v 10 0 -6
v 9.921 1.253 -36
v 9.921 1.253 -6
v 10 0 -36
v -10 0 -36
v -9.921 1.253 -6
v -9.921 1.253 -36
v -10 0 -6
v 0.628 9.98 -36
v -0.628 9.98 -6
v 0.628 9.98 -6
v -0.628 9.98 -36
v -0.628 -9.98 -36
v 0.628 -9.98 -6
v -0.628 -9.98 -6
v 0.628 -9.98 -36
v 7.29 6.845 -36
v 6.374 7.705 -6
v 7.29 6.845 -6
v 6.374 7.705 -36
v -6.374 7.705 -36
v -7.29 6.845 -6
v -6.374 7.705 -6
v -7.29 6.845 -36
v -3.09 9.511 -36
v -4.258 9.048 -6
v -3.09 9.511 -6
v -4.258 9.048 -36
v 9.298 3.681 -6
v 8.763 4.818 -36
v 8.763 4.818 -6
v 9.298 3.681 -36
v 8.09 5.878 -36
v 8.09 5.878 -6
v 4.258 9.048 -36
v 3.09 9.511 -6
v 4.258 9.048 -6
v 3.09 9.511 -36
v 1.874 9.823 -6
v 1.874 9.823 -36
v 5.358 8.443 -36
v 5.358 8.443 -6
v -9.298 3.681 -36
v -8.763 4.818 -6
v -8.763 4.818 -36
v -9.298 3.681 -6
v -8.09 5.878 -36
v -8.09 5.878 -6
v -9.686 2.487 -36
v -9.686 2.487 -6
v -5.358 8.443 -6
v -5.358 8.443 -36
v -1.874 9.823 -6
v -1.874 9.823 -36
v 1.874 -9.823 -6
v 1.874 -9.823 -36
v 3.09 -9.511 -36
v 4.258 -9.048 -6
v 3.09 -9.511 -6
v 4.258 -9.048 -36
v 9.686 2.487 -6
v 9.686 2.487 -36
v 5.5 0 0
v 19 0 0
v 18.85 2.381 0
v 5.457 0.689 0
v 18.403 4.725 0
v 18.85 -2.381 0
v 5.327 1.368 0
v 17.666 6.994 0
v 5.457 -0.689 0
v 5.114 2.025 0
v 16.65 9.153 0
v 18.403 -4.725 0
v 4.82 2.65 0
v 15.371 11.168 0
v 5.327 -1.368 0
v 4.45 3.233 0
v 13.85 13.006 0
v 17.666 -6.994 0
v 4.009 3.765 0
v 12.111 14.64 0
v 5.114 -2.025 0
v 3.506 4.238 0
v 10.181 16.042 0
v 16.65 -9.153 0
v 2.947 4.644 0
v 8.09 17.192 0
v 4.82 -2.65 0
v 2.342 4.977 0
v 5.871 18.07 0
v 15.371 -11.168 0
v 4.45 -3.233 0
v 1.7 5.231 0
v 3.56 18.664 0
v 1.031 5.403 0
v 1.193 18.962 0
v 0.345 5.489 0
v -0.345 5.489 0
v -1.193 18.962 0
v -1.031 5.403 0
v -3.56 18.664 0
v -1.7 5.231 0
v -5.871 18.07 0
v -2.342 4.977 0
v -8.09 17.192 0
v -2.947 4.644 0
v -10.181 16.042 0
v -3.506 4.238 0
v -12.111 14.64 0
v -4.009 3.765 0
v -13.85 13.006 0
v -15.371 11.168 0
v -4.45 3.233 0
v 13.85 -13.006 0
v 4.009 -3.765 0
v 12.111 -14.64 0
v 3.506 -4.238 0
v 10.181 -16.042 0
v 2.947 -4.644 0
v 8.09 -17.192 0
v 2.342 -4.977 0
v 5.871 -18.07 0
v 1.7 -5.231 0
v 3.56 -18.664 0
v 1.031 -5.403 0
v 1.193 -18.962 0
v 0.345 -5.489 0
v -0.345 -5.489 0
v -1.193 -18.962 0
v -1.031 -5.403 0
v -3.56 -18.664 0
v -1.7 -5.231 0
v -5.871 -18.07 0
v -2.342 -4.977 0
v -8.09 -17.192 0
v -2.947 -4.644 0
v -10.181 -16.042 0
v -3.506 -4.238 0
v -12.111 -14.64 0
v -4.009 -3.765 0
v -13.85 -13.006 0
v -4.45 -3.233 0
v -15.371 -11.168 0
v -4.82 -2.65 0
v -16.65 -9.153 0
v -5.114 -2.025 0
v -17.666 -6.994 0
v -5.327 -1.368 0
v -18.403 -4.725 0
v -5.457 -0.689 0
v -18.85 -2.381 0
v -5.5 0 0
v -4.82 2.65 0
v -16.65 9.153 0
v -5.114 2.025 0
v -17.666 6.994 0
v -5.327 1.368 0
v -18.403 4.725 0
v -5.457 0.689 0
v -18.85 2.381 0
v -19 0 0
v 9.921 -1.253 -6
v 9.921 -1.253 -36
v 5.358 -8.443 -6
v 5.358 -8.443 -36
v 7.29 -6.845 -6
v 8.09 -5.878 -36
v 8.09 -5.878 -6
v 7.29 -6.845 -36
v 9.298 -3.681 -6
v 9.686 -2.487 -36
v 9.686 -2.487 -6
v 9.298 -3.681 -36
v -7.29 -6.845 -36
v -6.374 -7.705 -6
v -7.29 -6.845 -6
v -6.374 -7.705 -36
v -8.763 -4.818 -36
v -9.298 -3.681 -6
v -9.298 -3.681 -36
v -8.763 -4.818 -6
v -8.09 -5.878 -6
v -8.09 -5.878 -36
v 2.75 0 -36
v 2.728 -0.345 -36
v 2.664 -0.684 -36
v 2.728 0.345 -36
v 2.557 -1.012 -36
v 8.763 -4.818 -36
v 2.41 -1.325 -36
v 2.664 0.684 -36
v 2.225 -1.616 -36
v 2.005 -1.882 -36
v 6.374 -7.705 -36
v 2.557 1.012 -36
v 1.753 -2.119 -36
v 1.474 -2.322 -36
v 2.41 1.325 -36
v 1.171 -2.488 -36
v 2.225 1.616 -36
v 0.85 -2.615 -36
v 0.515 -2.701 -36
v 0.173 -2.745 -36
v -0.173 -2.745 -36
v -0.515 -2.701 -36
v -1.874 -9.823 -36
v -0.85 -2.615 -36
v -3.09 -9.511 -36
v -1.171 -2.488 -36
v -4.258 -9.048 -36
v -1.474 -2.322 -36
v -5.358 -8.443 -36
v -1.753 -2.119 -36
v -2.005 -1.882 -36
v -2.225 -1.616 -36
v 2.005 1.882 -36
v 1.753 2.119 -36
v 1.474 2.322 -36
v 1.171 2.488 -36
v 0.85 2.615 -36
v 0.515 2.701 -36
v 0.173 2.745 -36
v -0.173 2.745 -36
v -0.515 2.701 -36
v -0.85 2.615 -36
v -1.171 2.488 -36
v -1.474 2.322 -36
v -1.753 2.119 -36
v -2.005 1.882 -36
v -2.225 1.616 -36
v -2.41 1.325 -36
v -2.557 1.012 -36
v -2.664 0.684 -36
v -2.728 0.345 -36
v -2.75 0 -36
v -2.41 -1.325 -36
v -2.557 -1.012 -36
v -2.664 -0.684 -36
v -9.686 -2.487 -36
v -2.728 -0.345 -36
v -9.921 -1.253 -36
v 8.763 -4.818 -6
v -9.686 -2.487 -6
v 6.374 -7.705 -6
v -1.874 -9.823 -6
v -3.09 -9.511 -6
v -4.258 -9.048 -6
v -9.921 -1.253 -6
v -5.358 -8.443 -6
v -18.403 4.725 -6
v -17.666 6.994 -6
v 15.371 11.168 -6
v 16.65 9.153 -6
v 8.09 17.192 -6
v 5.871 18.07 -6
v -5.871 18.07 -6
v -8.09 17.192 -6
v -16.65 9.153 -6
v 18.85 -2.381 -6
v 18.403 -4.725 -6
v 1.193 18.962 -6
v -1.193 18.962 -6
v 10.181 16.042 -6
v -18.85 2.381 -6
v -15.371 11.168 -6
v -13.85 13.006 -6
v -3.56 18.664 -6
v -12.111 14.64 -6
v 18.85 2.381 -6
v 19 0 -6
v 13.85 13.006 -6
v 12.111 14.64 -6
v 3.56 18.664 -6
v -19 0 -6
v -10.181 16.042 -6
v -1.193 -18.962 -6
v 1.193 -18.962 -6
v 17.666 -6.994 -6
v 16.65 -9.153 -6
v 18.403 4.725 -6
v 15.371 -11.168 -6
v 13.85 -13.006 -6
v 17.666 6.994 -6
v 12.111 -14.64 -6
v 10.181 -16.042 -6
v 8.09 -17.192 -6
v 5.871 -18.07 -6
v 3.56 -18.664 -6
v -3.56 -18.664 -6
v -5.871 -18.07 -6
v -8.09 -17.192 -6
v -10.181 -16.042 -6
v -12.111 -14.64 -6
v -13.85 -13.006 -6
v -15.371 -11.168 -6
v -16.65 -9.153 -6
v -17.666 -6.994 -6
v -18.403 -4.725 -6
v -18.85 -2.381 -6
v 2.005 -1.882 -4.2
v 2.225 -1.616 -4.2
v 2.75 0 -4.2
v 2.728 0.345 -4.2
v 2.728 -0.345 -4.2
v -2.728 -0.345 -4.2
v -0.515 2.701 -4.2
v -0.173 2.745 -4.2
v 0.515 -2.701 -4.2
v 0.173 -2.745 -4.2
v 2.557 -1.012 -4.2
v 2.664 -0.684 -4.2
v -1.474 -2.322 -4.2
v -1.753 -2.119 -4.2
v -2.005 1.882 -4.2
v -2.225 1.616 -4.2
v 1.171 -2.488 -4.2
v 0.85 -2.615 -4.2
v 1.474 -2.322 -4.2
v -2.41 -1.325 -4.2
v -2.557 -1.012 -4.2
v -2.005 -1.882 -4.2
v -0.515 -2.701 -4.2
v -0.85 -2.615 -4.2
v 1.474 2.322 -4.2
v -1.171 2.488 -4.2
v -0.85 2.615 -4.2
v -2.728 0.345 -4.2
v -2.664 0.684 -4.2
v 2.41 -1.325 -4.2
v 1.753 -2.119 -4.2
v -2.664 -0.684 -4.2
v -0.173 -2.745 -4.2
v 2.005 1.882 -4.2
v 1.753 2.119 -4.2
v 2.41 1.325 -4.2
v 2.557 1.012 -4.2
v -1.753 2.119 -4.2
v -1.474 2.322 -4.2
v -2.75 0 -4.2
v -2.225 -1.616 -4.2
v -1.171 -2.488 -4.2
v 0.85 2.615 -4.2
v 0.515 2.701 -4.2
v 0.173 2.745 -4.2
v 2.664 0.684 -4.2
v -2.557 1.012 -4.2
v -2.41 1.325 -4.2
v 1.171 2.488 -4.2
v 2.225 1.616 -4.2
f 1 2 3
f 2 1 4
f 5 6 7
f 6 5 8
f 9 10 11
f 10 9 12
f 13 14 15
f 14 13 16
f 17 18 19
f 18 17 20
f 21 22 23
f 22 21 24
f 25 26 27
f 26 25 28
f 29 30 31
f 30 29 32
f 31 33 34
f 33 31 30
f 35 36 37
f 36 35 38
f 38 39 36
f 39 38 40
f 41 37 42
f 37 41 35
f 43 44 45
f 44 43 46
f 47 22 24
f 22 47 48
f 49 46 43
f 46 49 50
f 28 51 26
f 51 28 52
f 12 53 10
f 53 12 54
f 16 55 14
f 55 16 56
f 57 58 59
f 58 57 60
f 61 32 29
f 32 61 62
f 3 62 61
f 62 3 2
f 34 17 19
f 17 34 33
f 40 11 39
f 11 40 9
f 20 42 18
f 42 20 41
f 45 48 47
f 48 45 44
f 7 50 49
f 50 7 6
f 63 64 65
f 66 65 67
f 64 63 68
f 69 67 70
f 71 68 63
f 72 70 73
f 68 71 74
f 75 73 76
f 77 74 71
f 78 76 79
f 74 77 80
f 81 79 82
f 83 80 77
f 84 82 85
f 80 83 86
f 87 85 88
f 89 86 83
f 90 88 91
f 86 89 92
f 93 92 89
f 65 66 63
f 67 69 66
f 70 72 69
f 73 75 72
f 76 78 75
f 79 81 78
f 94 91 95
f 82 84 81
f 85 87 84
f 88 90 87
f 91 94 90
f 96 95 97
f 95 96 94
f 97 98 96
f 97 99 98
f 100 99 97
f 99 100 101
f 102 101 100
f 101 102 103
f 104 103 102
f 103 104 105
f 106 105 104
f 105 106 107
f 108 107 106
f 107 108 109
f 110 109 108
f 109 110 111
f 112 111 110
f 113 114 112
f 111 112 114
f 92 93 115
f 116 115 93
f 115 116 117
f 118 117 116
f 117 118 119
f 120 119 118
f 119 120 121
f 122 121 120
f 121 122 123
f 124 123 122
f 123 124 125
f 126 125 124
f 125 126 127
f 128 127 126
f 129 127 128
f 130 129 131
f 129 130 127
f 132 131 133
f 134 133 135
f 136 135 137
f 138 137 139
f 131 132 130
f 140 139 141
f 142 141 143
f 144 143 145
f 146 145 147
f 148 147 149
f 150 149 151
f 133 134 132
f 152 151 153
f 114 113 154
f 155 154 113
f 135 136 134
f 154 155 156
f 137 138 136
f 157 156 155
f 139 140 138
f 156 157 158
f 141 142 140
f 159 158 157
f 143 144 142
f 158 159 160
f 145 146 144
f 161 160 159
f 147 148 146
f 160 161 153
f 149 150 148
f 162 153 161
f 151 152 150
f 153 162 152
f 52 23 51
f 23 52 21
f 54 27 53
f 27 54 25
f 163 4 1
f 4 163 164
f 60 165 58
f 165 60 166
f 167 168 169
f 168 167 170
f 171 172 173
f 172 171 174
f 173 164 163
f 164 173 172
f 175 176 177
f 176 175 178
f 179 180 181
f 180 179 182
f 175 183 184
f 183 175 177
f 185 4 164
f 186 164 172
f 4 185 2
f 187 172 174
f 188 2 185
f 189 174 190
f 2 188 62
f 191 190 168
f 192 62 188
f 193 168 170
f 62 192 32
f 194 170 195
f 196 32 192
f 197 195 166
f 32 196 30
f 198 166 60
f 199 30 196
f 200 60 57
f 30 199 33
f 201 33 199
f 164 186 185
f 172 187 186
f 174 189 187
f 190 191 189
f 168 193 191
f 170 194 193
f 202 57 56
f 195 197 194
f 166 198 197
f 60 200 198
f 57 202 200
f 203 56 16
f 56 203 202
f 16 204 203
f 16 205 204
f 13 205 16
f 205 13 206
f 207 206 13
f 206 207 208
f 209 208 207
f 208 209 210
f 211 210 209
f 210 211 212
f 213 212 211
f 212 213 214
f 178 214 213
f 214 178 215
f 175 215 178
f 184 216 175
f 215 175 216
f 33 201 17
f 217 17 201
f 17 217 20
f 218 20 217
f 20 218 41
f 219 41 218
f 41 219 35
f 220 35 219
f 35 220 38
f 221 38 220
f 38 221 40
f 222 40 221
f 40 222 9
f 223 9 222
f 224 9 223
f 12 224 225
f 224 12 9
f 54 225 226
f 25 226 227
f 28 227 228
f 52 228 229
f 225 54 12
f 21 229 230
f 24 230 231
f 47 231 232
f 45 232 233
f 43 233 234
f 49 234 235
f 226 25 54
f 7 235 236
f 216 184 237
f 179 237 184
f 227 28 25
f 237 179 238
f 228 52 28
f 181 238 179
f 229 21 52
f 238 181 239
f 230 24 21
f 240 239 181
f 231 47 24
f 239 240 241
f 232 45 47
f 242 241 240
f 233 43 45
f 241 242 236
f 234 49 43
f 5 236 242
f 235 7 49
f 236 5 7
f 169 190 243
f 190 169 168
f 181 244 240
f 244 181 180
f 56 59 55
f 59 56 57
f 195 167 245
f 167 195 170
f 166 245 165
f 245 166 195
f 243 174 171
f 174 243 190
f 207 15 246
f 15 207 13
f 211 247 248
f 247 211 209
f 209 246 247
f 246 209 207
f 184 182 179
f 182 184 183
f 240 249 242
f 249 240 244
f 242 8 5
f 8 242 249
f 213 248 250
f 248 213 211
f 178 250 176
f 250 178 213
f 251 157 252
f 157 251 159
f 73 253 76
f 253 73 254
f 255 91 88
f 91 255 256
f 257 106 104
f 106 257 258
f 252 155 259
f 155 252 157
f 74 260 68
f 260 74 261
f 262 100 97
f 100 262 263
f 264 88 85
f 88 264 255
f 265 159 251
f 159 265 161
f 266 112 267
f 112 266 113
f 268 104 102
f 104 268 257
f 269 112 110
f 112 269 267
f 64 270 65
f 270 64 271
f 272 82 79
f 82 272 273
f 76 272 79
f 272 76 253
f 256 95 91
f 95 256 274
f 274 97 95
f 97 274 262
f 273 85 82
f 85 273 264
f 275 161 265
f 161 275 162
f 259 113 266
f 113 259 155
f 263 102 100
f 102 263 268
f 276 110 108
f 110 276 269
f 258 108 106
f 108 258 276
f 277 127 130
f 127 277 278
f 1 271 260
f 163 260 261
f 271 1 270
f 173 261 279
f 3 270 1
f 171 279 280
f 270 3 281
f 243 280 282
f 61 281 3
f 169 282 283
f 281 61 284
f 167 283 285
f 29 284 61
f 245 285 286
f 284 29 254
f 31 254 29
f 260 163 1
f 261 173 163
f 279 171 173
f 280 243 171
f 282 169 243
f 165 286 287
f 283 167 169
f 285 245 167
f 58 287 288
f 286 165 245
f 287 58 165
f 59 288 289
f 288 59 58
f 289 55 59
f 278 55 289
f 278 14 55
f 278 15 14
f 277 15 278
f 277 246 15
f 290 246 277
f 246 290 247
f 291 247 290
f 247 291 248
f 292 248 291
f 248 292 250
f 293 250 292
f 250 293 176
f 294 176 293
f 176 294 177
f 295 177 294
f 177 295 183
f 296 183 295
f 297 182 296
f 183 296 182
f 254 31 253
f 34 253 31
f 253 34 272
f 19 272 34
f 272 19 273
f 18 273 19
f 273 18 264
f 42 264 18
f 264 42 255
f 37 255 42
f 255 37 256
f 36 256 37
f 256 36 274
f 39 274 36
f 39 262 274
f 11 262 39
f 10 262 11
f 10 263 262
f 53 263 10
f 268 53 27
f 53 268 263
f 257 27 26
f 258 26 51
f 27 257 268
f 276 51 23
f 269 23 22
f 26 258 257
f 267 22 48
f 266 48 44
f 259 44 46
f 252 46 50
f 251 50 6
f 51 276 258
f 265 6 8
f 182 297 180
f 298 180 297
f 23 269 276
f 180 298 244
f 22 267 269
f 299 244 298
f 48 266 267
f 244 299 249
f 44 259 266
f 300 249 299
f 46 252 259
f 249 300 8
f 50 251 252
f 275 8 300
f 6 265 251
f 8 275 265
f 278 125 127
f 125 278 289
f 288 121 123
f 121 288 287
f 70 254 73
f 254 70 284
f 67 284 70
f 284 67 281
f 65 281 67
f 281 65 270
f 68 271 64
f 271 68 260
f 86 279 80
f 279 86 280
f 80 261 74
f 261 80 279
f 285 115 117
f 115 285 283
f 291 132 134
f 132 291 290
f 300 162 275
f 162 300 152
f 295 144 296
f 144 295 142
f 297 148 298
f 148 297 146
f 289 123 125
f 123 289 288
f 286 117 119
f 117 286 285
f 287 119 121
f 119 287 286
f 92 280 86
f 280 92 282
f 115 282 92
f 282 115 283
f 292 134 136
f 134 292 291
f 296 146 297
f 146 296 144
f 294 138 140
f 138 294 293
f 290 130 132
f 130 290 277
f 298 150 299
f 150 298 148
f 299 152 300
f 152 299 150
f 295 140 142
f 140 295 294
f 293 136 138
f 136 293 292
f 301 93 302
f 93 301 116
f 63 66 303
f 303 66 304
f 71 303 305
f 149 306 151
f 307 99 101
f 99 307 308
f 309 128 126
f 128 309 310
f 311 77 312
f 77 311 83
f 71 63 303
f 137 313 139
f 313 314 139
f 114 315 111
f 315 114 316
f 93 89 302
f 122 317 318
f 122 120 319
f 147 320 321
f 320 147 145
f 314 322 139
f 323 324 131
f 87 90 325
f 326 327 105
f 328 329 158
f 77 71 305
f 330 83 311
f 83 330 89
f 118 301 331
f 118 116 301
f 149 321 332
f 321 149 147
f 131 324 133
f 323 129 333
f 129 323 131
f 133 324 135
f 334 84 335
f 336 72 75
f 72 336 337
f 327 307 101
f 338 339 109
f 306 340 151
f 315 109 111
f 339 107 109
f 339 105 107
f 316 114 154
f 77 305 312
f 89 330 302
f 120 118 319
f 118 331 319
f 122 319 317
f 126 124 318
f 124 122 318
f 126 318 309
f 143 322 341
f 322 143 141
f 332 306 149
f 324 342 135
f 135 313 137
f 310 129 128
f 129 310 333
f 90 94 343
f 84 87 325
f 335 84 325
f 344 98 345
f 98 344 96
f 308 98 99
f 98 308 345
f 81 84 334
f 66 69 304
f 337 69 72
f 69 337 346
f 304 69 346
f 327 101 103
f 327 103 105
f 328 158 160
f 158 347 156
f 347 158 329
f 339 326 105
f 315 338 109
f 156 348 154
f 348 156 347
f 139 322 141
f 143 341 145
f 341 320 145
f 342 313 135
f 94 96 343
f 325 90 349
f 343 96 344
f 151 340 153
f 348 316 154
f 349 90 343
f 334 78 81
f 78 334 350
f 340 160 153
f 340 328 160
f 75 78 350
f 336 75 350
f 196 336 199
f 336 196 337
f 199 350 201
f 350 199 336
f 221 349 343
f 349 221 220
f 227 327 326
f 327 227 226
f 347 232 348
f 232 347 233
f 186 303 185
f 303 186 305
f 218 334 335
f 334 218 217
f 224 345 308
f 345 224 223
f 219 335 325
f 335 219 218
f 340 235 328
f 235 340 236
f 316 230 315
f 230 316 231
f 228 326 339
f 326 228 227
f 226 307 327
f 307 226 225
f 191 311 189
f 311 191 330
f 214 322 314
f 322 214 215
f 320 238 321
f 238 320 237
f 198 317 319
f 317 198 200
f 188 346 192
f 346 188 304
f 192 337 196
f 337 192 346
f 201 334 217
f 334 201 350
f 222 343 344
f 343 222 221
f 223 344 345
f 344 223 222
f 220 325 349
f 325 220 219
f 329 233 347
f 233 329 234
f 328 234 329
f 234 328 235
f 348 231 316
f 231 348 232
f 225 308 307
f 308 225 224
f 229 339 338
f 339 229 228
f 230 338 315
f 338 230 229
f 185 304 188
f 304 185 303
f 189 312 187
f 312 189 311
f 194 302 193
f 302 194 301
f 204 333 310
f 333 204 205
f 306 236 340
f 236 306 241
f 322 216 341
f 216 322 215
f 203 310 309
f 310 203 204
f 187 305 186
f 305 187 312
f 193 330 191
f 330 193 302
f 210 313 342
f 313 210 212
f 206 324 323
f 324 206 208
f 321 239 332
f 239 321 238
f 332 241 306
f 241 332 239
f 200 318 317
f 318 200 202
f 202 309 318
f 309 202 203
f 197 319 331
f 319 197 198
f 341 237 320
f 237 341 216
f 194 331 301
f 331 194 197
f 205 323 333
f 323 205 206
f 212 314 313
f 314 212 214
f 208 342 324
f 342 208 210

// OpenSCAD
$fn = 50;


difference() {
	union() {
		translate(v = [0, 0, -36.0000000000]) {
			cylinder(h = 36, r = 10.0000000000);
		}
		translate(v = [0, 0, -6.0000000000]) {
			cylinder(h = 6, r = 19.0000000000);
		}
	}
	union() {
		translate(v = [0, 0, 0]) {
			rotate(a = [0, 0, 0]) {
				difference() {
					union() {
						#translate(v = [0, 0, -36.0000000000]) {
							cylinder(h = 36, r = 2.2500000000);
						}
						#translate(v = [0, 0, -4.2000000000]) {
							cylinder(h = 4.2000000000, r = 10.0000000000, r1 = 2.7500000000, r2 = 5.5000000000);
						}
						#translate(v = [0, 0, -36.0000000000]) {
							cylinder(h = 36, r = 2.7500000000);
						}
						#translate(v = [0, 0, -36.0000000000]) {
							cylinder(h = 36, r = 2.2500000000);
						}
					}
					union();
				}
			}
		}
	}
}
